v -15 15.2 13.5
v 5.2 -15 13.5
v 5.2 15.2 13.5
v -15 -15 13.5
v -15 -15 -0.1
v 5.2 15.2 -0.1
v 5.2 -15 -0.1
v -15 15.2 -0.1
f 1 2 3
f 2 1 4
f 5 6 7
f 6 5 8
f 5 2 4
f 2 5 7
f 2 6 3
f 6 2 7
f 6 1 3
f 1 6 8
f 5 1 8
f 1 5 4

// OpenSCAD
// -*- mode: SCAD ; c-file-style: "ellemtel" ; coding: utf-8 -*-
//
// Modifier for the bottle opener
//
// © 2017 Roland Sieker <ospalh@gmail.com>
// Licence: CC-BY-SA 4.0

//import("meshes/Flaschenöffner.stl");

h=13.4;
ms = 0.1;
w=15;

translate([-w,-w,-ms])
{
   cube([w+5+2*ms, 2*w+2*ms, h+2*ms]);
}
